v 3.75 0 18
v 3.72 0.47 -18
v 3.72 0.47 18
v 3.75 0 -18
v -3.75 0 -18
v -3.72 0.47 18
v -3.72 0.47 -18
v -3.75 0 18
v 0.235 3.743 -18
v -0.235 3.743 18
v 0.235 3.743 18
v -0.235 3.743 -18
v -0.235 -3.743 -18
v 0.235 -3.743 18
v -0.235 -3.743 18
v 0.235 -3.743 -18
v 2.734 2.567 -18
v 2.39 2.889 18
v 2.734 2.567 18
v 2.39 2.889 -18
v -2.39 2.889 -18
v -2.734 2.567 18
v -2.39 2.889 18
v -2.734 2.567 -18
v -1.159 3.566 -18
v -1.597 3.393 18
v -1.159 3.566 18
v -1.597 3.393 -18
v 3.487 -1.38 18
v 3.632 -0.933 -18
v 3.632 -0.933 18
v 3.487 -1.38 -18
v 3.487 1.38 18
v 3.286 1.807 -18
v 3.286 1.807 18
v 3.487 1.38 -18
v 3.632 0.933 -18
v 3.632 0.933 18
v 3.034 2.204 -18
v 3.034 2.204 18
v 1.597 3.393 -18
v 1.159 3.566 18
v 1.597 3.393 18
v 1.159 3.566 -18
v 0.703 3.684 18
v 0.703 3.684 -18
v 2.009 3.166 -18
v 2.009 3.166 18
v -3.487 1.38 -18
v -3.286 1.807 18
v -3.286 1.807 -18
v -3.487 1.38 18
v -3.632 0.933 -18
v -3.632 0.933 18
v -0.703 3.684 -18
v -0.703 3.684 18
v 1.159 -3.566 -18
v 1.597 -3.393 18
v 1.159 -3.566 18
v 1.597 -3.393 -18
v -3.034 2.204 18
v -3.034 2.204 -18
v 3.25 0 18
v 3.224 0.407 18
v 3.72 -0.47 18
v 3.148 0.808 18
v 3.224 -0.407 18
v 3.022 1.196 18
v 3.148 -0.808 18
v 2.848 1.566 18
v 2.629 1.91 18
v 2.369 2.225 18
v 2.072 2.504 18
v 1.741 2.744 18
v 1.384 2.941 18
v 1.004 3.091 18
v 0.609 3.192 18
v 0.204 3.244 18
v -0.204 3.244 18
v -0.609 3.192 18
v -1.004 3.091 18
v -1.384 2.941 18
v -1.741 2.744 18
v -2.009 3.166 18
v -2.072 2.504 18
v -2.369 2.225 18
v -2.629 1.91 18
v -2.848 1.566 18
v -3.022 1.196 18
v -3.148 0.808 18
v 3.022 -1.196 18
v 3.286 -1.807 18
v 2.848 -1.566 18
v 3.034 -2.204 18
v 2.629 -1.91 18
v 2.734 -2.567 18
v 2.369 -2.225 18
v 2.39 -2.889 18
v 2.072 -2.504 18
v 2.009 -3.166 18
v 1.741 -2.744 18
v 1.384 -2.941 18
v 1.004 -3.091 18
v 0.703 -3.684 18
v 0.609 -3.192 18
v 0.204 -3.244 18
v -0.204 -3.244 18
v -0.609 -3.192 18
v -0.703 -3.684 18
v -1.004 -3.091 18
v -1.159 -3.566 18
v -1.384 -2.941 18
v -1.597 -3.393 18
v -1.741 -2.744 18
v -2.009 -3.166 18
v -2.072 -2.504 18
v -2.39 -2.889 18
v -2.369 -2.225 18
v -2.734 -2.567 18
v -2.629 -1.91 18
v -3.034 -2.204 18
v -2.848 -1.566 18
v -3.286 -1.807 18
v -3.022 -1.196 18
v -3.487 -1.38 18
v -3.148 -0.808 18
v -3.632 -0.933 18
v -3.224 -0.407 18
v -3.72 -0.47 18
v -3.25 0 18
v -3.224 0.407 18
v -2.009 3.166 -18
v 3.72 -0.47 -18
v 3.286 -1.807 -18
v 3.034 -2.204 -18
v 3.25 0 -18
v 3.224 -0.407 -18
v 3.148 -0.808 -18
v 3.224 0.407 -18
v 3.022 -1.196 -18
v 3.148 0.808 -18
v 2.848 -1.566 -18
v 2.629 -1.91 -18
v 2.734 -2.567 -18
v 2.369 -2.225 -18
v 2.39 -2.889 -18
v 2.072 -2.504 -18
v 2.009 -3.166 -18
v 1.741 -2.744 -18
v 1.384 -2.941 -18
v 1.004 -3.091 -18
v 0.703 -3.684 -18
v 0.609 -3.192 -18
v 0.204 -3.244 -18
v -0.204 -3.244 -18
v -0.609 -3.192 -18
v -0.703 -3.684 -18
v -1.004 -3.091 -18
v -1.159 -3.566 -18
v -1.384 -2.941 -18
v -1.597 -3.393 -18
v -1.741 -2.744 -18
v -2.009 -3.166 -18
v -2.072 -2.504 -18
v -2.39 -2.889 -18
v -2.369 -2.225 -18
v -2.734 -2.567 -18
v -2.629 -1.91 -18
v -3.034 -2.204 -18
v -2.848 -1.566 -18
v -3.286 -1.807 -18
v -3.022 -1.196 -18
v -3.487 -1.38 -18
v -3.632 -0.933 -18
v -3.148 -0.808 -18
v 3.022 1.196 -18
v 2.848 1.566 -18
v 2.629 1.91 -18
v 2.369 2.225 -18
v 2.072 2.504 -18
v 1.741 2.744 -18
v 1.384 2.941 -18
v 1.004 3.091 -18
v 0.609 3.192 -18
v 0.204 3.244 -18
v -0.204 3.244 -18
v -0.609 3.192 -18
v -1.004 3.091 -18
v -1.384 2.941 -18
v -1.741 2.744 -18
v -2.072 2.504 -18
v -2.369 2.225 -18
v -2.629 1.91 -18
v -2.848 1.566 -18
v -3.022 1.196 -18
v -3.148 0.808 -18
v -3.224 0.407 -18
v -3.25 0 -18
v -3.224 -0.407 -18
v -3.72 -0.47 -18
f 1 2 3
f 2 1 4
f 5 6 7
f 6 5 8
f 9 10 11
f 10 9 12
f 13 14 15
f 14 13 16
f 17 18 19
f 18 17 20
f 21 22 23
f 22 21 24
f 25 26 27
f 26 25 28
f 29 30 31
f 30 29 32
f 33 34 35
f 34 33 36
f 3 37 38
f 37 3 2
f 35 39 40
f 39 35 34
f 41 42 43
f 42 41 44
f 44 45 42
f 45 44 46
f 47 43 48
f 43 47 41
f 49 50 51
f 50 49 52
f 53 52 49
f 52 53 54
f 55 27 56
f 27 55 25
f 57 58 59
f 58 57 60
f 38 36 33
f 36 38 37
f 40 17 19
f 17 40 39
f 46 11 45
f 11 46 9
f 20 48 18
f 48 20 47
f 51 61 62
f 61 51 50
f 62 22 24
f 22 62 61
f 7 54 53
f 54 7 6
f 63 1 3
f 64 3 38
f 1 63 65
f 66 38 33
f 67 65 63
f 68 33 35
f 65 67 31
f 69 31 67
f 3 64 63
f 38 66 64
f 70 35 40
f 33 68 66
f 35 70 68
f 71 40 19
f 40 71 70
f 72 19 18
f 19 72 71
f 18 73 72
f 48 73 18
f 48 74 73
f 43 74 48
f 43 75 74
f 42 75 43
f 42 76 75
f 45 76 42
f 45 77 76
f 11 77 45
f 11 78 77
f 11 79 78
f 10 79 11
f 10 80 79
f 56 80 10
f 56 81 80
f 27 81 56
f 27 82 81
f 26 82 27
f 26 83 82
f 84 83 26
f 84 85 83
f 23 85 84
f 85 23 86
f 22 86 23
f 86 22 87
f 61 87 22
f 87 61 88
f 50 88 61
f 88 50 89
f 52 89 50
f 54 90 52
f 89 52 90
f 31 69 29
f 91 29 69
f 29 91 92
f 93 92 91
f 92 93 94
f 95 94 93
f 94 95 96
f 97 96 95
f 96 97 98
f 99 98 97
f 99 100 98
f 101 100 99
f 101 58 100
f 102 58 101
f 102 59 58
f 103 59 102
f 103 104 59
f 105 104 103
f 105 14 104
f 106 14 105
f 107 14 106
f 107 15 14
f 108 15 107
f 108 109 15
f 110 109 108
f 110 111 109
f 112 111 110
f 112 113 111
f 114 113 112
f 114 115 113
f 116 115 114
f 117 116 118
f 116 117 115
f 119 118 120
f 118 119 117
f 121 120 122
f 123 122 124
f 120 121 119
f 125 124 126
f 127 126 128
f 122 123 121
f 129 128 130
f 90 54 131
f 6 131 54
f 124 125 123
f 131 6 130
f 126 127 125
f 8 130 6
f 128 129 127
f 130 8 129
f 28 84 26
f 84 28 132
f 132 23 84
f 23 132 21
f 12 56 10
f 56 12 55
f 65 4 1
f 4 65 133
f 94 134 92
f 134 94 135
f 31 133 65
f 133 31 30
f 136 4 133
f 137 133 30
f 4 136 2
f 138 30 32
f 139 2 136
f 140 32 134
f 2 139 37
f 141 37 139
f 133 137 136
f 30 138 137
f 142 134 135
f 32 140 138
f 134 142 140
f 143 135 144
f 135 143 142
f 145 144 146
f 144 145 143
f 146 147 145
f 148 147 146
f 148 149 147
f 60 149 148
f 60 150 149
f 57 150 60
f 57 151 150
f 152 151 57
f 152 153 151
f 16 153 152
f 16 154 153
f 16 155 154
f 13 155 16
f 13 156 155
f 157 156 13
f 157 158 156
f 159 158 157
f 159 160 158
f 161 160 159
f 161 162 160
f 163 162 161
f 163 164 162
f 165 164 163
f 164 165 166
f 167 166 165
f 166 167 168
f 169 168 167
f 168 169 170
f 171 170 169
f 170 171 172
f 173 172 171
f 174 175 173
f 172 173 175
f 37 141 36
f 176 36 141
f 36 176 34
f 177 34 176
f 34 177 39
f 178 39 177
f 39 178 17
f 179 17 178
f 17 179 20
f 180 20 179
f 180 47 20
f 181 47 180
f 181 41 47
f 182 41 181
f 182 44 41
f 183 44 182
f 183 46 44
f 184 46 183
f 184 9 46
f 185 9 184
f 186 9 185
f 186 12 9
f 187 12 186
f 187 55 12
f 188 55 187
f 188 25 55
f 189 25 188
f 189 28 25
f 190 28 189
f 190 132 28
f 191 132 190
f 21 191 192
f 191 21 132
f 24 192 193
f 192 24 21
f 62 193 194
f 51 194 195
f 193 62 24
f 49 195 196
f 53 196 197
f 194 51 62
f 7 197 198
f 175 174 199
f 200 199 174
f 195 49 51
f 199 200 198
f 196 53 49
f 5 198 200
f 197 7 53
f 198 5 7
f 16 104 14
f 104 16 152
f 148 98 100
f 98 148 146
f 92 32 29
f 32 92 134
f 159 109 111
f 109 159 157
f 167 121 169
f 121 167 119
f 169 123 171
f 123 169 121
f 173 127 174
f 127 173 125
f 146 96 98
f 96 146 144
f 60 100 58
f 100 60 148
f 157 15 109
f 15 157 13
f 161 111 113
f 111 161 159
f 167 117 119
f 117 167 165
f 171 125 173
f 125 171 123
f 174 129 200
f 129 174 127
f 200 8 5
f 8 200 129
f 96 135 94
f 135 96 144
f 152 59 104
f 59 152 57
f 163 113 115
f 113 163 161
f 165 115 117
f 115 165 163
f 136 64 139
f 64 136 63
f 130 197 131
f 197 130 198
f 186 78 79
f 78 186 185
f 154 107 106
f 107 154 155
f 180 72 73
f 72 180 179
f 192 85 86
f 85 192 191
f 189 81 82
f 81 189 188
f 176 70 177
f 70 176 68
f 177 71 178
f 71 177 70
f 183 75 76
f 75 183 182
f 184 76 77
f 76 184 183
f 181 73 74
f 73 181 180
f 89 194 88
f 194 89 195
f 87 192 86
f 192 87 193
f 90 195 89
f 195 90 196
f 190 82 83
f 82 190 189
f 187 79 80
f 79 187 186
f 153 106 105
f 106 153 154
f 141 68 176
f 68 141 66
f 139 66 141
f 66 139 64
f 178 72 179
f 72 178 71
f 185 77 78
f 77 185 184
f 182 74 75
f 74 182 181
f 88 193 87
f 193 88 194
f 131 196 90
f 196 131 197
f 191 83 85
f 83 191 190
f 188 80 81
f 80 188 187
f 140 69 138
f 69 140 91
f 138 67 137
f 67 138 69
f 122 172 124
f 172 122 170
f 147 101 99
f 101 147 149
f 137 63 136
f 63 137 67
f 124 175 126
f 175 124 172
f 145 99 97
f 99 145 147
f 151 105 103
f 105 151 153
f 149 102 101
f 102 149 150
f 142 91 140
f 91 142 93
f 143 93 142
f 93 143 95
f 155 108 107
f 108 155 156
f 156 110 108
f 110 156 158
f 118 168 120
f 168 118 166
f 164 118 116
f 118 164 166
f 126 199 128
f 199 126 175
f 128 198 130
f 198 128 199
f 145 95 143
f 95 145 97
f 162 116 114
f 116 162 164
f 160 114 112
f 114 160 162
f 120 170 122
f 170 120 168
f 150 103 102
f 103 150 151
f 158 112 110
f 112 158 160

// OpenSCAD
$fn = 50;


difference() {
	union() {
		translate(v = [0, 0, -18.0000000000]) {
			cylinder(h = 36, r = 3.7500000000);
		}
	}
	union() {
		translate(v = [0, 0, -100.0000000000]) {
			cylinder(h = 200, r = 3.2500000000);
		}
	}
}
